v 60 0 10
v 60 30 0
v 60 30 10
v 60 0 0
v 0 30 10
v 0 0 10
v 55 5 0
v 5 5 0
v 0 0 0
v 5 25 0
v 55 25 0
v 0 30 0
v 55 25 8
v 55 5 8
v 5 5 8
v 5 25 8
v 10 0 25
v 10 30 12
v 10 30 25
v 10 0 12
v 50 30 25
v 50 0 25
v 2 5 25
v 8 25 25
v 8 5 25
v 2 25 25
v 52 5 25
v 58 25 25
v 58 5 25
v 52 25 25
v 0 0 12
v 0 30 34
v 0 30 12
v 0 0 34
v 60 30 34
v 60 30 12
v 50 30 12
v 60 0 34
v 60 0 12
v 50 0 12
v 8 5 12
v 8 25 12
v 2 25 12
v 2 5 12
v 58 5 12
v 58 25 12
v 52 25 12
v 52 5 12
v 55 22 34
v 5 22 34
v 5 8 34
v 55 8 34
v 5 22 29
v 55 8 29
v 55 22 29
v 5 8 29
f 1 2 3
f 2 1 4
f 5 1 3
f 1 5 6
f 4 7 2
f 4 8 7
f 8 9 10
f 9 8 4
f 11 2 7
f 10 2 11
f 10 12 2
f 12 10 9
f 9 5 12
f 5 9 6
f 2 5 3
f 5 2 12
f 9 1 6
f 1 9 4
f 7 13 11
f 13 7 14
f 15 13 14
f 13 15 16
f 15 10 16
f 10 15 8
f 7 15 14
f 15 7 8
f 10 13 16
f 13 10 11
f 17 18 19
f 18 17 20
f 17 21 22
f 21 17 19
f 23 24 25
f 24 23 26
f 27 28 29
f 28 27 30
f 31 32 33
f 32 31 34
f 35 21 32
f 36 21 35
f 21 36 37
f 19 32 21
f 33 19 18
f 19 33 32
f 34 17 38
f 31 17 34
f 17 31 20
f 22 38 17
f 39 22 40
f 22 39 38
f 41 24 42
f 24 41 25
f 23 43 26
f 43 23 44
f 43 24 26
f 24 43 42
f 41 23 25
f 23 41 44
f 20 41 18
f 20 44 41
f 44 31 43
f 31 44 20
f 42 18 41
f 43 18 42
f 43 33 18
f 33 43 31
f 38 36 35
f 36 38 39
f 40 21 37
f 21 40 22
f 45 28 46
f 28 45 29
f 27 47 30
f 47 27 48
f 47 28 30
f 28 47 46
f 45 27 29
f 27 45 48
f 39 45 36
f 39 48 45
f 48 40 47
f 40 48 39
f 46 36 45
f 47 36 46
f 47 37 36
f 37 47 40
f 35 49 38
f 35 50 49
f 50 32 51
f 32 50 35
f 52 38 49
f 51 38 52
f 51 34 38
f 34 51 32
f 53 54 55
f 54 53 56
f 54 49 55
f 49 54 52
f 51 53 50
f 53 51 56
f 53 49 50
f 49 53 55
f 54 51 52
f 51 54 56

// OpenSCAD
// Base Block
module base_block() {
    difference() {
        cube([60, 30, 10], center = false);
        translate([5, 5, 0])
            cube([50, 10, 8], center = false); // Deepened groove
        translate([5, 15, 0])
            cube([50, 10, 8], center = false); // Deepened groove
    }
}

// Side Clamp
module side_clamp() {
    difference() {
        cube([10, 30, 15], center = false); // Extended height for longer arms
        translate([2, 5, 0])
            cube([6, 20, 15], center = false); // Adjusted cutout to match extended height
        translate([0, 0, 0])
            cube([10, 30, 2], center = false); // Extended arms for more vertical profile
    }
}

// Top Clamp
module top_clamp() {
    difference() {
        cube([60, 30, 5], center = false);
        translate([5, 8, 0]) // Adjusted position for better alignment
            cube([50, 14, 5], center = false); // Widened groove
    }
}

// Spacer Block
module spacer_block() {
    cube([60, 30, 4], center = false); // Increased thickness for uniformity
}

// Assembly
module assembly() {
    // Layer 4: Base Block
    base_block();

    // Layer 3: Side Clamps
    translate([0, 0, 10])
        side_clamp();
    translate([50, 0, 10])
        side_clamp();

    // Layer 2: Spacer Block
    translate([0, 0, 25]) // Adjusted height to match increased spacer thickness
        spacer_block();

    // Layer 1: Top Clamp
    translate([0, 0, 29]) // Adjusted height to match increased spacer thickness
        top_clamp();
}

// Render the assembly
assembly();
